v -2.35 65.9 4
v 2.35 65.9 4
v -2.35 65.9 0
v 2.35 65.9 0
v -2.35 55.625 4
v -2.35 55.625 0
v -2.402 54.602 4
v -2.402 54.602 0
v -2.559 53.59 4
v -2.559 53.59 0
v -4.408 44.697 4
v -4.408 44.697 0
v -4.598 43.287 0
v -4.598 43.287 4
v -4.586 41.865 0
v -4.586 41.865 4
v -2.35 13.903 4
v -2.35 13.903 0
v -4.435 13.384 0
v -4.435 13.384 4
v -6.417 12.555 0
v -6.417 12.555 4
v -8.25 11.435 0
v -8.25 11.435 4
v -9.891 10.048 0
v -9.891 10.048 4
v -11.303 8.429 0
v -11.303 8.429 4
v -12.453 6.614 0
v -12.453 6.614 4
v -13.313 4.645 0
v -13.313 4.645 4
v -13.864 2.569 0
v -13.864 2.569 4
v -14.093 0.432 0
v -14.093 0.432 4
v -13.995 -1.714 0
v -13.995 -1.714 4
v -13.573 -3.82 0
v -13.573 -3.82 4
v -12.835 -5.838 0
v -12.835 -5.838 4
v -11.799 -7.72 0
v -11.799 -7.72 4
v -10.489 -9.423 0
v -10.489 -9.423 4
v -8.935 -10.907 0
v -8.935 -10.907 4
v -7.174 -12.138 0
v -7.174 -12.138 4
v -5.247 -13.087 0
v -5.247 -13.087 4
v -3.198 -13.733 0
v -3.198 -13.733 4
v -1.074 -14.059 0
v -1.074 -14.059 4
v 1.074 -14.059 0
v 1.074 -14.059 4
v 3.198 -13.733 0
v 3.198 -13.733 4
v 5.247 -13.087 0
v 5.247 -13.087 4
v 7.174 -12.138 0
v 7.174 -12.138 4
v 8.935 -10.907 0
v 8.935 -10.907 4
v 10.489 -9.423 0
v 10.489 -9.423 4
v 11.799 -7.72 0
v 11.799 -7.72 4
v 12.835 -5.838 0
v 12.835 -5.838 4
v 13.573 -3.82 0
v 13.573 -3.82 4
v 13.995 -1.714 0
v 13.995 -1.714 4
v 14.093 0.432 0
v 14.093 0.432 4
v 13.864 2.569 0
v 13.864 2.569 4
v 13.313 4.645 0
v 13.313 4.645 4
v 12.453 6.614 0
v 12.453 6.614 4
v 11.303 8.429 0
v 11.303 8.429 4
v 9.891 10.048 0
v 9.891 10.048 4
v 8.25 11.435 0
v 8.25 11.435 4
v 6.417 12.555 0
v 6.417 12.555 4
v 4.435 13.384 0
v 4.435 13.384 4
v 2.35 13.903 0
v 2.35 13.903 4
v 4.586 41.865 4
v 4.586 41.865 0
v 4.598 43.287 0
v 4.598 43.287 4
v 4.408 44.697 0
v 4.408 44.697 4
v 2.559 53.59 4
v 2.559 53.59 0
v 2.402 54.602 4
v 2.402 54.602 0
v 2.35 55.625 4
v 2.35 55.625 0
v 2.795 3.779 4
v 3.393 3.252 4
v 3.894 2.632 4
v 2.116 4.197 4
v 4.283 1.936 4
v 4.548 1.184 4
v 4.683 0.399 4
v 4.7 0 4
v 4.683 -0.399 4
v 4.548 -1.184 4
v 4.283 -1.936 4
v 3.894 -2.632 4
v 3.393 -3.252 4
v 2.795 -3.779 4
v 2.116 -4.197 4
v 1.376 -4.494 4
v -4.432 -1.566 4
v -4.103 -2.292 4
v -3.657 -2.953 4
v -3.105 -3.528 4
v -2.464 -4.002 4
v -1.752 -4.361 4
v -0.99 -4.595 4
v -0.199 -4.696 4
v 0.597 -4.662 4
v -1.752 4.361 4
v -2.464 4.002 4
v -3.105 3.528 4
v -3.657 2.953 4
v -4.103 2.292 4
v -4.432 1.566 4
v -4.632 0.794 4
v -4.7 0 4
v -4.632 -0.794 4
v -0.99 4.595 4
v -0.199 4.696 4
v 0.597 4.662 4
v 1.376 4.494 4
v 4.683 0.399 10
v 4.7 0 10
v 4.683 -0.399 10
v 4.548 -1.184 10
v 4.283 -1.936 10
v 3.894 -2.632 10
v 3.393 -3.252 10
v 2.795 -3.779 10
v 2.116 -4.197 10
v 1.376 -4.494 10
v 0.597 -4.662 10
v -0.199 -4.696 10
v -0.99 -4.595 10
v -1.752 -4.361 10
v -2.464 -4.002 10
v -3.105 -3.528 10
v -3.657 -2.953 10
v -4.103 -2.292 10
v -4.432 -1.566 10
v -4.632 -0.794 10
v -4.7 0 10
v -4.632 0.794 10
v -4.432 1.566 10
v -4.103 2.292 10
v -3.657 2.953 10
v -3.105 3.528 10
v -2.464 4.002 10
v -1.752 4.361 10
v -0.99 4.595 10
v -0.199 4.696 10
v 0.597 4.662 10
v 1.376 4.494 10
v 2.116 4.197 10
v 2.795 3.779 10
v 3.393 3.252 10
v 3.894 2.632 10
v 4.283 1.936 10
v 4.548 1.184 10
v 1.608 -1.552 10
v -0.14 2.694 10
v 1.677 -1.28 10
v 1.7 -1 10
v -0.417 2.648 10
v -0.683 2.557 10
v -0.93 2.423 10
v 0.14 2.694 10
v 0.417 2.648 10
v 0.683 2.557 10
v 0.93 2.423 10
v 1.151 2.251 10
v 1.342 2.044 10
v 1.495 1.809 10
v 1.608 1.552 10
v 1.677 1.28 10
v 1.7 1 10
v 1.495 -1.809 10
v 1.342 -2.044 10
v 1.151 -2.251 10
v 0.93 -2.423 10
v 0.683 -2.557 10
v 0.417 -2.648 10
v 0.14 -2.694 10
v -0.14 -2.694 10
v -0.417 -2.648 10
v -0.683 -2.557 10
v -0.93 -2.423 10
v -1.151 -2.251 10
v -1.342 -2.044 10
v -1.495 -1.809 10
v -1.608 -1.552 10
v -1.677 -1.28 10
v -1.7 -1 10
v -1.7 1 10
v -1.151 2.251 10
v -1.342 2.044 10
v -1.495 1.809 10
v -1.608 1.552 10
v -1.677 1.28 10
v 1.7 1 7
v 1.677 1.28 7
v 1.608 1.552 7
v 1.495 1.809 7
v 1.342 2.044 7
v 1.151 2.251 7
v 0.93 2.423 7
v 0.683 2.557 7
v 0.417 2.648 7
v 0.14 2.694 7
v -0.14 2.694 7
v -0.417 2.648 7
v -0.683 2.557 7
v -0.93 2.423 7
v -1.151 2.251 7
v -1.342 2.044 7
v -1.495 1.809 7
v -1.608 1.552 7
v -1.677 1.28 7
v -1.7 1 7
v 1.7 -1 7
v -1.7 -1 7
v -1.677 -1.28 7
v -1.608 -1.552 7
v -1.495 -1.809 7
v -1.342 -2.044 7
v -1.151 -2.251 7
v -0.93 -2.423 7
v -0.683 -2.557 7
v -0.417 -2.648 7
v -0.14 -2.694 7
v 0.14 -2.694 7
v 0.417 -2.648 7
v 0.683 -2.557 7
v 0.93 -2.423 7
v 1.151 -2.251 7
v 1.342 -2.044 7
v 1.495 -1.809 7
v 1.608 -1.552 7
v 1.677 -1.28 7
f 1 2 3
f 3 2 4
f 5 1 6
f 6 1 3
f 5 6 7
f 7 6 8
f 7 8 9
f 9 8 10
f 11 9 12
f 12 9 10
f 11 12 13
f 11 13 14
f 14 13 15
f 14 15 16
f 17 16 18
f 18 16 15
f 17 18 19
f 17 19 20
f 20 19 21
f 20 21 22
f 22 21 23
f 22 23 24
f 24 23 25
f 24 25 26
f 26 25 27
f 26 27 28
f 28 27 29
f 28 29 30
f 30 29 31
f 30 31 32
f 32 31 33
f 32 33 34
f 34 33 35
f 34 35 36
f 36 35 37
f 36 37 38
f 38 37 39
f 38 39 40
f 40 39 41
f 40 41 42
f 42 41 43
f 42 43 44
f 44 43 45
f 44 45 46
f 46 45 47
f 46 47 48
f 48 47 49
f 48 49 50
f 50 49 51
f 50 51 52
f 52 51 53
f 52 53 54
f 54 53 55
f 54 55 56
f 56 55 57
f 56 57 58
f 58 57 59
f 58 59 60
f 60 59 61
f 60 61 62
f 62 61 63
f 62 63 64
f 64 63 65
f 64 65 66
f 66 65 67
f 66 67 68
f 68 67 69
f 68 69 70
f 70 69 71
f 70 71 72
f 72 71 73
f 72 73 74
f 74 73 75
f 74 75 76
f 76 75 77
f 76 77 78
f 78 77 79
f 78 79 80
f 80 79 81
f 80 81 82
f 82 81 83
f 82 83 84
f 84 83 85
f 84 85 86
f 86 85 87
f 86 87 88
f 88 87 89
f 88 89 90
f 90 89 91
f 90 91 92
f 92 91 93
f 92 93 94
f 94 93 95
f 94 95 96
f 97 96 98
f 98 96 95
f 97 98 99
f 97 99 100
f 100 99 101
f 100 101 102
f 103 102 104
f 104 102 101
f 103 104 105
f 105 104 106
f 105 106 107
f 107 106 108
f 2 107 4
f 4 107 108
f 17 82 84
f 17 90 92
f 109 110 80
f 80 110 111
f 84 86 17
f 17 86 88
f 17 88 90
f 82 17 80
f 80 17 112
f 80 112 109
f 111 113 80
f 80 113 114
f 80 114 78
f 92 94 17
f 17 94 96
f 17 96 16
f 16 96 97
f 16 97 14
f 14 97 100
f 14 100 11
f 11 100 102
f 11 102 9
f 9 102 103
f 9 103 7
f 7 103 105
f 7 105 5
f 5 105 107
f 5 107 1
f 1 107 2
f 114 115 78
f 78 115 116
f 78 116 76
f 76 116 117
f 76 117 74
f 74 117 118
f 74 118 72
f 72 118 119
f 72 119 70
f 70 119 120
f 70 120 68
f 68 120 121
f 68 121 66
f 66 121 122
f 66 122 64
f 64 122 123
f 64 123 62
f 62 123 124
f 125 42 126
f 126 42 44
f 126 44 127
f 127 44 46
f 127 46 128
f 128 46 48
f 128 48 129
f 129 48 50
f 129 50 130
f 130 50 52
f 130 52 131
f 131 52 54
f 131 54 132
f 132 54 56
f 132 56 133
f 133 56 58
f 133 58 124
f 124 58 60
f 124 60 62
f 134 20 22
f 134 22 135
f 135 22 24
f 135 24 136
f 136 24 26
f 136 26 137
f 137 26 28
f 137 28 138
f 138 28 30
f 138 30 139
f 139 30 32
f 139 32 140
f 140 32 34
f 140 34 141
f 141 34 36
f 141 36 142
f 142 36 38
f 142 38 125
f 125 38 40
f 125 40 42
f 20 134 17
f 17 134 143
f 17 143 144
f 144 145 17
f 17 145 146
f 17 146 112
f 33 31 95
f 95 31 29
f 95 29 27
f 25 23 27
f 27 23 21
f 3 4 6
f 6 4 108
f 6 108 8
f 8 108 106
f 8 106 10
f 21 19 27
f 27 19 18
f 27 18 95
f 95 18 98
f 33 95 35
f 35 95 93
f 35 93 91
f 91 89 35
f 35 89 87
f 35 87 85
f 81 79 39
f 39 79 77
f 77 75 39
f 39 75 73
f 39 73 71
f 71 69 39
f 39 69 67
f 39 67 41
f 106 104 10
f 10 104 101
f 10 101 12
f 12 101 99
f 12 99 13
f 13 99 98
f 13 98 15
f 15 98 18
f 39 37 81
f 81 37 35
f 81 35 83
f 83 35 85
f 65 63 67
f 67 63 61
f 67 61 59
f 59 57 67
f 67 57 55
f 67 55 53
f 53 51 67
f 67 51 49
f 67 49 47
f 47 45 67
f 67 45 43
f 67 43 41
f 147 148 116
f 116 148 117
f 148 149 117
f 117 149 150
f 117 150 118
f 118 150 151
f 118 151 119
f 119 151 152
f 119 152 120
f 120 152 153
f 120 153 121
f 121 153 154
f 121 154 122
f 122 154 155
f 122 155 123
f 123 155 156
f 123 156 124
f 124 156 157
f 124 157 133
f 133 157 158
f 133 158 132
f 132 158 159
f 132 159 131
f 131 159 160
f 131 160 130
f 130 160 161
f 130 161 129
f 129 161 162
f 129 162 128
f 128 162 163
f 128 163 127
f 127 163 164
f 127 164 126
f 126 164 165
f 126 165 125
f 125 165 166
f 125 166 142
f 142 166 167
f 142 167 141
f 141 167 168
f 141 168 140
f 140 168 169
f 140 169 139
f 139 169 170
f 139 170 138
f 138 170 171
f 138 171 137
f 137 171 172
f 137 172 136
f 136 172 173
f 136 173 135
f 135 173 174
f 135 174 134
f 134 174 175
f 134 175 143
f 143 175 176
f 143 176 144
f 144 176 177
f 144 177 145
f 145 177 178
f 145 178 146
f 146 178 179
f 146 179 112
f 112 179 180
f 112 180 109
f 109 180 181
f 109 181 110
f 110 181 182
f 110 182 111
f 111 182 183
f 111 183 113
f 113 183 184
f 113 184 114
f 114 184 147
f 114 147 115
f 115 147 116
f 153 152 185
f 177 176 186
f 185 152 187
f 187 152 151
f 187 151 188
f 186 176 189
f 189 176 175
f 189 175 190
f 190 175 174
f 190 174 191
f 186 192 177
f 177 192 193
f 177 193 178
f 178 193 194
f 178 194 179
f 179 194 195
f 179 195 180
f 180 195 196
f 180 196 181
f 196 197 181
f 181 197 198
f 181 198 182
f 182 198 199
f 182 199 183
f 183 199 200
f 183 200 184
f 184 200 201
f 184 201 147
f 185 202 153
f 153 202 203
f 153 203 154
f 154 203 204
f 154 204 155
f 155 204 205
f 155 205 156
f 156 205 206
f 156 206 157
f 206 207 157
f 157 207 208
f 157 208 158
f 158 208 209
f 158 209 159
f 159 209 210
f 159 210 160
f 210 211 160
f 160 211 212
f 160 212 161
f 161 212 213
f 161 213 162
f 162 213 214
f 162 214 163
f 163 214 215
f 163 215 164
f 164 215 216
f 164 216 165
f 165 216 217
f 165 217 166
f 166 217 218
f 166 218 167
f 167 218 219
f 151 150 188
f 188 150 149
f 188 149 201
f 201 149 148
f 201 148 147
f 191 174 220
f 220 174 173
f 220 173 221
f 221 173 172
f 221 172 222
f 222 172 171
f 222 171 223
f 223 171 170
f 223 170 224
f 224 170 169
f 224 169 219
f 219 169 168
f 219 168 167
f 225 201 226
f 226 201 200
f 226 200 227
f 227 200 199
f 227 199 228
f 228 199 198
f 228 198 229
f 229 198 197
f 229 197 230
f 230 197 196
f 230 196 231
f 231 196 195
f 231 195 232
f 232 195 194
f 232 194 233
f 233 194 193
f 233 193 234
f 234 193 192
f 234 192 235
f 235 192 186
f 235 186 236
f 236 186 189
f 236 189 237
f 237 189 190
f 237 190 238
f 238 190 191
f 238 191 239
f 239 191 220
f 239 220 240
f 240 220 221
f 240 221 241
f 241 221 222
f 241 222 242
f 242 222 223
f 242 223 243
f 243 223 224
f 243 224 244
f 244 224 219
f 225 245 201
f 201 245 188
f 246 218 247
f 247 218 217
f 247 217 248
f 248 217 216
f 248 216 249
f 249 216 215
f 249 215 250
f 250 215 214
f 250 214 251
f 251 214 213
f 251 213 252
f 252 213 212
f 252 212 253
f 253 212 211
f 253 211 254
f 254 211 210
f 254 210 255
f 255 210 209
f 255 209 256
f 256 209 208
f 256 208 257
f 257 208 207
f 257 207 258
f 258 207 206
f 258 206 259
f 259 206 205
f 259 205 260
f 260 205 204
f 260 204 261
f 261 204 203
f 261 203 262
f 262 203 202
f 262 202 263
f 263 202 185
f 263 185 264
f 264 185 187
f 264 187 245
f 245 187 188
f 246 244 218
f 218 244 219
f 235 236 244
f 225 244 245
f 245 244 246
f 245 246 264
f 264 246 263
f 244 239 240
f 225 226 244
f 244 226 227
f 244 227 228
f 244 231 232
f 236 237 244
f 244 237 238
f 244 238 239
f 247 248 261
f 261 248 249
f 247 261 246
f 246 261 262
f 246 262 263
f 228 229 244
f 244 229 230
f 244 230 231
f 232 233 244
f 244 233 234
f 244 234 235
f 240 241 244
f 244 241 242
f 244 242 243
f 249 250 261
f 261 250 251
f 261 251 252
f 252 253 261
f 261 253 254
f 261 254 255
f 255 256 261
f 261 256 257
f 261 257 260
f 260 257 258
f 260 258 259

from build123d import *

# Parameters (mm, degrees)
SKETCH1_R           = 4.7
BOSS_EXTRUDE1_DEPTH = 4
SKETCH1_3_R         = 4.7
BOSS_EXTRUDE2_DEPTH = 10
CUT_EXTRUDE1_DEPTH  = 3


with BuildPart() as part:
    # Sketch1 → Boss-Extrude1 (new body)
    with BuildSketch(Plane.XY):
        with BuildLine():
            Line((2.35, 13.90278749), (4.585741176, 41.864603012))
            ThreePointArc((4.585741176, 41.864603012), (4.597967377, 43.28721197), (4.408193437, 44.697159337))
            Line((4.408193437, 44.697159337), (2.559360842, 53.589805153))
            ThreePointArc((2.559360842, 53.589805153), (2.402477907, 54.602201264), (2.35, 55.625335767))
            Line((2.35, 55.625335767), (2.35, 65.9))
            Line((2.35, 65.9), (-2.35, 65.9))
            Line((-2.35, 65.9), (-2.35, 55.625335767))
            ThreePointArc((-2.35, 55.625335767), (-2.402477907, 54.602201264), (-2.559360842, 53.589805153))
            Line((-2.559360842, 53.589805153), (-4.408193437, 44.697159337))
            ThreePointArc((-4.408193437, 44.697159337), (-4.597967377, 43.28721197), (-4.585741176, 41.864603012))
            Line((-4.585741176, 41.864603012), (-2.35, 13.90278749))
            ThreePointArc((-2.35, 13.90278749), (0, -14.1), (2.35, 13.90278749))
        make_face()
        Circle(SKETCH1_R, mode=Mode.SUBTRACT)
    extrude(amount=BOSS_EXTRUDE1_DEPTH)

    # Sketch1<3> → Boss-Extrude2 (add)
    with BuildSketch(Plane.XY):
        Circle(SKETCH1_3_R)
    extrude(amount=BOSS_EXTRUDE2_DEPTH)

    # Sketch2 → Cut-Extrude1 (cut)
    with BuildSketch(Plane.XY.offset(10)):
        with BuildLine():
            Line((1.7, 1), (1.7, -1))
            ThreePointArc((1.7, -1), (0, -2.7), (-1.7, -1))
            Line((-1.7, -1), (-1.7, 1))
            ThreePointArc((-1.7, 1), (0, 2.7), (1.7, 1))
        make_face()
    extrude(amount=-CUT_EXTRUDE1_DEPTH, mode=Mode.SUBTRACT)


solid = part.part
